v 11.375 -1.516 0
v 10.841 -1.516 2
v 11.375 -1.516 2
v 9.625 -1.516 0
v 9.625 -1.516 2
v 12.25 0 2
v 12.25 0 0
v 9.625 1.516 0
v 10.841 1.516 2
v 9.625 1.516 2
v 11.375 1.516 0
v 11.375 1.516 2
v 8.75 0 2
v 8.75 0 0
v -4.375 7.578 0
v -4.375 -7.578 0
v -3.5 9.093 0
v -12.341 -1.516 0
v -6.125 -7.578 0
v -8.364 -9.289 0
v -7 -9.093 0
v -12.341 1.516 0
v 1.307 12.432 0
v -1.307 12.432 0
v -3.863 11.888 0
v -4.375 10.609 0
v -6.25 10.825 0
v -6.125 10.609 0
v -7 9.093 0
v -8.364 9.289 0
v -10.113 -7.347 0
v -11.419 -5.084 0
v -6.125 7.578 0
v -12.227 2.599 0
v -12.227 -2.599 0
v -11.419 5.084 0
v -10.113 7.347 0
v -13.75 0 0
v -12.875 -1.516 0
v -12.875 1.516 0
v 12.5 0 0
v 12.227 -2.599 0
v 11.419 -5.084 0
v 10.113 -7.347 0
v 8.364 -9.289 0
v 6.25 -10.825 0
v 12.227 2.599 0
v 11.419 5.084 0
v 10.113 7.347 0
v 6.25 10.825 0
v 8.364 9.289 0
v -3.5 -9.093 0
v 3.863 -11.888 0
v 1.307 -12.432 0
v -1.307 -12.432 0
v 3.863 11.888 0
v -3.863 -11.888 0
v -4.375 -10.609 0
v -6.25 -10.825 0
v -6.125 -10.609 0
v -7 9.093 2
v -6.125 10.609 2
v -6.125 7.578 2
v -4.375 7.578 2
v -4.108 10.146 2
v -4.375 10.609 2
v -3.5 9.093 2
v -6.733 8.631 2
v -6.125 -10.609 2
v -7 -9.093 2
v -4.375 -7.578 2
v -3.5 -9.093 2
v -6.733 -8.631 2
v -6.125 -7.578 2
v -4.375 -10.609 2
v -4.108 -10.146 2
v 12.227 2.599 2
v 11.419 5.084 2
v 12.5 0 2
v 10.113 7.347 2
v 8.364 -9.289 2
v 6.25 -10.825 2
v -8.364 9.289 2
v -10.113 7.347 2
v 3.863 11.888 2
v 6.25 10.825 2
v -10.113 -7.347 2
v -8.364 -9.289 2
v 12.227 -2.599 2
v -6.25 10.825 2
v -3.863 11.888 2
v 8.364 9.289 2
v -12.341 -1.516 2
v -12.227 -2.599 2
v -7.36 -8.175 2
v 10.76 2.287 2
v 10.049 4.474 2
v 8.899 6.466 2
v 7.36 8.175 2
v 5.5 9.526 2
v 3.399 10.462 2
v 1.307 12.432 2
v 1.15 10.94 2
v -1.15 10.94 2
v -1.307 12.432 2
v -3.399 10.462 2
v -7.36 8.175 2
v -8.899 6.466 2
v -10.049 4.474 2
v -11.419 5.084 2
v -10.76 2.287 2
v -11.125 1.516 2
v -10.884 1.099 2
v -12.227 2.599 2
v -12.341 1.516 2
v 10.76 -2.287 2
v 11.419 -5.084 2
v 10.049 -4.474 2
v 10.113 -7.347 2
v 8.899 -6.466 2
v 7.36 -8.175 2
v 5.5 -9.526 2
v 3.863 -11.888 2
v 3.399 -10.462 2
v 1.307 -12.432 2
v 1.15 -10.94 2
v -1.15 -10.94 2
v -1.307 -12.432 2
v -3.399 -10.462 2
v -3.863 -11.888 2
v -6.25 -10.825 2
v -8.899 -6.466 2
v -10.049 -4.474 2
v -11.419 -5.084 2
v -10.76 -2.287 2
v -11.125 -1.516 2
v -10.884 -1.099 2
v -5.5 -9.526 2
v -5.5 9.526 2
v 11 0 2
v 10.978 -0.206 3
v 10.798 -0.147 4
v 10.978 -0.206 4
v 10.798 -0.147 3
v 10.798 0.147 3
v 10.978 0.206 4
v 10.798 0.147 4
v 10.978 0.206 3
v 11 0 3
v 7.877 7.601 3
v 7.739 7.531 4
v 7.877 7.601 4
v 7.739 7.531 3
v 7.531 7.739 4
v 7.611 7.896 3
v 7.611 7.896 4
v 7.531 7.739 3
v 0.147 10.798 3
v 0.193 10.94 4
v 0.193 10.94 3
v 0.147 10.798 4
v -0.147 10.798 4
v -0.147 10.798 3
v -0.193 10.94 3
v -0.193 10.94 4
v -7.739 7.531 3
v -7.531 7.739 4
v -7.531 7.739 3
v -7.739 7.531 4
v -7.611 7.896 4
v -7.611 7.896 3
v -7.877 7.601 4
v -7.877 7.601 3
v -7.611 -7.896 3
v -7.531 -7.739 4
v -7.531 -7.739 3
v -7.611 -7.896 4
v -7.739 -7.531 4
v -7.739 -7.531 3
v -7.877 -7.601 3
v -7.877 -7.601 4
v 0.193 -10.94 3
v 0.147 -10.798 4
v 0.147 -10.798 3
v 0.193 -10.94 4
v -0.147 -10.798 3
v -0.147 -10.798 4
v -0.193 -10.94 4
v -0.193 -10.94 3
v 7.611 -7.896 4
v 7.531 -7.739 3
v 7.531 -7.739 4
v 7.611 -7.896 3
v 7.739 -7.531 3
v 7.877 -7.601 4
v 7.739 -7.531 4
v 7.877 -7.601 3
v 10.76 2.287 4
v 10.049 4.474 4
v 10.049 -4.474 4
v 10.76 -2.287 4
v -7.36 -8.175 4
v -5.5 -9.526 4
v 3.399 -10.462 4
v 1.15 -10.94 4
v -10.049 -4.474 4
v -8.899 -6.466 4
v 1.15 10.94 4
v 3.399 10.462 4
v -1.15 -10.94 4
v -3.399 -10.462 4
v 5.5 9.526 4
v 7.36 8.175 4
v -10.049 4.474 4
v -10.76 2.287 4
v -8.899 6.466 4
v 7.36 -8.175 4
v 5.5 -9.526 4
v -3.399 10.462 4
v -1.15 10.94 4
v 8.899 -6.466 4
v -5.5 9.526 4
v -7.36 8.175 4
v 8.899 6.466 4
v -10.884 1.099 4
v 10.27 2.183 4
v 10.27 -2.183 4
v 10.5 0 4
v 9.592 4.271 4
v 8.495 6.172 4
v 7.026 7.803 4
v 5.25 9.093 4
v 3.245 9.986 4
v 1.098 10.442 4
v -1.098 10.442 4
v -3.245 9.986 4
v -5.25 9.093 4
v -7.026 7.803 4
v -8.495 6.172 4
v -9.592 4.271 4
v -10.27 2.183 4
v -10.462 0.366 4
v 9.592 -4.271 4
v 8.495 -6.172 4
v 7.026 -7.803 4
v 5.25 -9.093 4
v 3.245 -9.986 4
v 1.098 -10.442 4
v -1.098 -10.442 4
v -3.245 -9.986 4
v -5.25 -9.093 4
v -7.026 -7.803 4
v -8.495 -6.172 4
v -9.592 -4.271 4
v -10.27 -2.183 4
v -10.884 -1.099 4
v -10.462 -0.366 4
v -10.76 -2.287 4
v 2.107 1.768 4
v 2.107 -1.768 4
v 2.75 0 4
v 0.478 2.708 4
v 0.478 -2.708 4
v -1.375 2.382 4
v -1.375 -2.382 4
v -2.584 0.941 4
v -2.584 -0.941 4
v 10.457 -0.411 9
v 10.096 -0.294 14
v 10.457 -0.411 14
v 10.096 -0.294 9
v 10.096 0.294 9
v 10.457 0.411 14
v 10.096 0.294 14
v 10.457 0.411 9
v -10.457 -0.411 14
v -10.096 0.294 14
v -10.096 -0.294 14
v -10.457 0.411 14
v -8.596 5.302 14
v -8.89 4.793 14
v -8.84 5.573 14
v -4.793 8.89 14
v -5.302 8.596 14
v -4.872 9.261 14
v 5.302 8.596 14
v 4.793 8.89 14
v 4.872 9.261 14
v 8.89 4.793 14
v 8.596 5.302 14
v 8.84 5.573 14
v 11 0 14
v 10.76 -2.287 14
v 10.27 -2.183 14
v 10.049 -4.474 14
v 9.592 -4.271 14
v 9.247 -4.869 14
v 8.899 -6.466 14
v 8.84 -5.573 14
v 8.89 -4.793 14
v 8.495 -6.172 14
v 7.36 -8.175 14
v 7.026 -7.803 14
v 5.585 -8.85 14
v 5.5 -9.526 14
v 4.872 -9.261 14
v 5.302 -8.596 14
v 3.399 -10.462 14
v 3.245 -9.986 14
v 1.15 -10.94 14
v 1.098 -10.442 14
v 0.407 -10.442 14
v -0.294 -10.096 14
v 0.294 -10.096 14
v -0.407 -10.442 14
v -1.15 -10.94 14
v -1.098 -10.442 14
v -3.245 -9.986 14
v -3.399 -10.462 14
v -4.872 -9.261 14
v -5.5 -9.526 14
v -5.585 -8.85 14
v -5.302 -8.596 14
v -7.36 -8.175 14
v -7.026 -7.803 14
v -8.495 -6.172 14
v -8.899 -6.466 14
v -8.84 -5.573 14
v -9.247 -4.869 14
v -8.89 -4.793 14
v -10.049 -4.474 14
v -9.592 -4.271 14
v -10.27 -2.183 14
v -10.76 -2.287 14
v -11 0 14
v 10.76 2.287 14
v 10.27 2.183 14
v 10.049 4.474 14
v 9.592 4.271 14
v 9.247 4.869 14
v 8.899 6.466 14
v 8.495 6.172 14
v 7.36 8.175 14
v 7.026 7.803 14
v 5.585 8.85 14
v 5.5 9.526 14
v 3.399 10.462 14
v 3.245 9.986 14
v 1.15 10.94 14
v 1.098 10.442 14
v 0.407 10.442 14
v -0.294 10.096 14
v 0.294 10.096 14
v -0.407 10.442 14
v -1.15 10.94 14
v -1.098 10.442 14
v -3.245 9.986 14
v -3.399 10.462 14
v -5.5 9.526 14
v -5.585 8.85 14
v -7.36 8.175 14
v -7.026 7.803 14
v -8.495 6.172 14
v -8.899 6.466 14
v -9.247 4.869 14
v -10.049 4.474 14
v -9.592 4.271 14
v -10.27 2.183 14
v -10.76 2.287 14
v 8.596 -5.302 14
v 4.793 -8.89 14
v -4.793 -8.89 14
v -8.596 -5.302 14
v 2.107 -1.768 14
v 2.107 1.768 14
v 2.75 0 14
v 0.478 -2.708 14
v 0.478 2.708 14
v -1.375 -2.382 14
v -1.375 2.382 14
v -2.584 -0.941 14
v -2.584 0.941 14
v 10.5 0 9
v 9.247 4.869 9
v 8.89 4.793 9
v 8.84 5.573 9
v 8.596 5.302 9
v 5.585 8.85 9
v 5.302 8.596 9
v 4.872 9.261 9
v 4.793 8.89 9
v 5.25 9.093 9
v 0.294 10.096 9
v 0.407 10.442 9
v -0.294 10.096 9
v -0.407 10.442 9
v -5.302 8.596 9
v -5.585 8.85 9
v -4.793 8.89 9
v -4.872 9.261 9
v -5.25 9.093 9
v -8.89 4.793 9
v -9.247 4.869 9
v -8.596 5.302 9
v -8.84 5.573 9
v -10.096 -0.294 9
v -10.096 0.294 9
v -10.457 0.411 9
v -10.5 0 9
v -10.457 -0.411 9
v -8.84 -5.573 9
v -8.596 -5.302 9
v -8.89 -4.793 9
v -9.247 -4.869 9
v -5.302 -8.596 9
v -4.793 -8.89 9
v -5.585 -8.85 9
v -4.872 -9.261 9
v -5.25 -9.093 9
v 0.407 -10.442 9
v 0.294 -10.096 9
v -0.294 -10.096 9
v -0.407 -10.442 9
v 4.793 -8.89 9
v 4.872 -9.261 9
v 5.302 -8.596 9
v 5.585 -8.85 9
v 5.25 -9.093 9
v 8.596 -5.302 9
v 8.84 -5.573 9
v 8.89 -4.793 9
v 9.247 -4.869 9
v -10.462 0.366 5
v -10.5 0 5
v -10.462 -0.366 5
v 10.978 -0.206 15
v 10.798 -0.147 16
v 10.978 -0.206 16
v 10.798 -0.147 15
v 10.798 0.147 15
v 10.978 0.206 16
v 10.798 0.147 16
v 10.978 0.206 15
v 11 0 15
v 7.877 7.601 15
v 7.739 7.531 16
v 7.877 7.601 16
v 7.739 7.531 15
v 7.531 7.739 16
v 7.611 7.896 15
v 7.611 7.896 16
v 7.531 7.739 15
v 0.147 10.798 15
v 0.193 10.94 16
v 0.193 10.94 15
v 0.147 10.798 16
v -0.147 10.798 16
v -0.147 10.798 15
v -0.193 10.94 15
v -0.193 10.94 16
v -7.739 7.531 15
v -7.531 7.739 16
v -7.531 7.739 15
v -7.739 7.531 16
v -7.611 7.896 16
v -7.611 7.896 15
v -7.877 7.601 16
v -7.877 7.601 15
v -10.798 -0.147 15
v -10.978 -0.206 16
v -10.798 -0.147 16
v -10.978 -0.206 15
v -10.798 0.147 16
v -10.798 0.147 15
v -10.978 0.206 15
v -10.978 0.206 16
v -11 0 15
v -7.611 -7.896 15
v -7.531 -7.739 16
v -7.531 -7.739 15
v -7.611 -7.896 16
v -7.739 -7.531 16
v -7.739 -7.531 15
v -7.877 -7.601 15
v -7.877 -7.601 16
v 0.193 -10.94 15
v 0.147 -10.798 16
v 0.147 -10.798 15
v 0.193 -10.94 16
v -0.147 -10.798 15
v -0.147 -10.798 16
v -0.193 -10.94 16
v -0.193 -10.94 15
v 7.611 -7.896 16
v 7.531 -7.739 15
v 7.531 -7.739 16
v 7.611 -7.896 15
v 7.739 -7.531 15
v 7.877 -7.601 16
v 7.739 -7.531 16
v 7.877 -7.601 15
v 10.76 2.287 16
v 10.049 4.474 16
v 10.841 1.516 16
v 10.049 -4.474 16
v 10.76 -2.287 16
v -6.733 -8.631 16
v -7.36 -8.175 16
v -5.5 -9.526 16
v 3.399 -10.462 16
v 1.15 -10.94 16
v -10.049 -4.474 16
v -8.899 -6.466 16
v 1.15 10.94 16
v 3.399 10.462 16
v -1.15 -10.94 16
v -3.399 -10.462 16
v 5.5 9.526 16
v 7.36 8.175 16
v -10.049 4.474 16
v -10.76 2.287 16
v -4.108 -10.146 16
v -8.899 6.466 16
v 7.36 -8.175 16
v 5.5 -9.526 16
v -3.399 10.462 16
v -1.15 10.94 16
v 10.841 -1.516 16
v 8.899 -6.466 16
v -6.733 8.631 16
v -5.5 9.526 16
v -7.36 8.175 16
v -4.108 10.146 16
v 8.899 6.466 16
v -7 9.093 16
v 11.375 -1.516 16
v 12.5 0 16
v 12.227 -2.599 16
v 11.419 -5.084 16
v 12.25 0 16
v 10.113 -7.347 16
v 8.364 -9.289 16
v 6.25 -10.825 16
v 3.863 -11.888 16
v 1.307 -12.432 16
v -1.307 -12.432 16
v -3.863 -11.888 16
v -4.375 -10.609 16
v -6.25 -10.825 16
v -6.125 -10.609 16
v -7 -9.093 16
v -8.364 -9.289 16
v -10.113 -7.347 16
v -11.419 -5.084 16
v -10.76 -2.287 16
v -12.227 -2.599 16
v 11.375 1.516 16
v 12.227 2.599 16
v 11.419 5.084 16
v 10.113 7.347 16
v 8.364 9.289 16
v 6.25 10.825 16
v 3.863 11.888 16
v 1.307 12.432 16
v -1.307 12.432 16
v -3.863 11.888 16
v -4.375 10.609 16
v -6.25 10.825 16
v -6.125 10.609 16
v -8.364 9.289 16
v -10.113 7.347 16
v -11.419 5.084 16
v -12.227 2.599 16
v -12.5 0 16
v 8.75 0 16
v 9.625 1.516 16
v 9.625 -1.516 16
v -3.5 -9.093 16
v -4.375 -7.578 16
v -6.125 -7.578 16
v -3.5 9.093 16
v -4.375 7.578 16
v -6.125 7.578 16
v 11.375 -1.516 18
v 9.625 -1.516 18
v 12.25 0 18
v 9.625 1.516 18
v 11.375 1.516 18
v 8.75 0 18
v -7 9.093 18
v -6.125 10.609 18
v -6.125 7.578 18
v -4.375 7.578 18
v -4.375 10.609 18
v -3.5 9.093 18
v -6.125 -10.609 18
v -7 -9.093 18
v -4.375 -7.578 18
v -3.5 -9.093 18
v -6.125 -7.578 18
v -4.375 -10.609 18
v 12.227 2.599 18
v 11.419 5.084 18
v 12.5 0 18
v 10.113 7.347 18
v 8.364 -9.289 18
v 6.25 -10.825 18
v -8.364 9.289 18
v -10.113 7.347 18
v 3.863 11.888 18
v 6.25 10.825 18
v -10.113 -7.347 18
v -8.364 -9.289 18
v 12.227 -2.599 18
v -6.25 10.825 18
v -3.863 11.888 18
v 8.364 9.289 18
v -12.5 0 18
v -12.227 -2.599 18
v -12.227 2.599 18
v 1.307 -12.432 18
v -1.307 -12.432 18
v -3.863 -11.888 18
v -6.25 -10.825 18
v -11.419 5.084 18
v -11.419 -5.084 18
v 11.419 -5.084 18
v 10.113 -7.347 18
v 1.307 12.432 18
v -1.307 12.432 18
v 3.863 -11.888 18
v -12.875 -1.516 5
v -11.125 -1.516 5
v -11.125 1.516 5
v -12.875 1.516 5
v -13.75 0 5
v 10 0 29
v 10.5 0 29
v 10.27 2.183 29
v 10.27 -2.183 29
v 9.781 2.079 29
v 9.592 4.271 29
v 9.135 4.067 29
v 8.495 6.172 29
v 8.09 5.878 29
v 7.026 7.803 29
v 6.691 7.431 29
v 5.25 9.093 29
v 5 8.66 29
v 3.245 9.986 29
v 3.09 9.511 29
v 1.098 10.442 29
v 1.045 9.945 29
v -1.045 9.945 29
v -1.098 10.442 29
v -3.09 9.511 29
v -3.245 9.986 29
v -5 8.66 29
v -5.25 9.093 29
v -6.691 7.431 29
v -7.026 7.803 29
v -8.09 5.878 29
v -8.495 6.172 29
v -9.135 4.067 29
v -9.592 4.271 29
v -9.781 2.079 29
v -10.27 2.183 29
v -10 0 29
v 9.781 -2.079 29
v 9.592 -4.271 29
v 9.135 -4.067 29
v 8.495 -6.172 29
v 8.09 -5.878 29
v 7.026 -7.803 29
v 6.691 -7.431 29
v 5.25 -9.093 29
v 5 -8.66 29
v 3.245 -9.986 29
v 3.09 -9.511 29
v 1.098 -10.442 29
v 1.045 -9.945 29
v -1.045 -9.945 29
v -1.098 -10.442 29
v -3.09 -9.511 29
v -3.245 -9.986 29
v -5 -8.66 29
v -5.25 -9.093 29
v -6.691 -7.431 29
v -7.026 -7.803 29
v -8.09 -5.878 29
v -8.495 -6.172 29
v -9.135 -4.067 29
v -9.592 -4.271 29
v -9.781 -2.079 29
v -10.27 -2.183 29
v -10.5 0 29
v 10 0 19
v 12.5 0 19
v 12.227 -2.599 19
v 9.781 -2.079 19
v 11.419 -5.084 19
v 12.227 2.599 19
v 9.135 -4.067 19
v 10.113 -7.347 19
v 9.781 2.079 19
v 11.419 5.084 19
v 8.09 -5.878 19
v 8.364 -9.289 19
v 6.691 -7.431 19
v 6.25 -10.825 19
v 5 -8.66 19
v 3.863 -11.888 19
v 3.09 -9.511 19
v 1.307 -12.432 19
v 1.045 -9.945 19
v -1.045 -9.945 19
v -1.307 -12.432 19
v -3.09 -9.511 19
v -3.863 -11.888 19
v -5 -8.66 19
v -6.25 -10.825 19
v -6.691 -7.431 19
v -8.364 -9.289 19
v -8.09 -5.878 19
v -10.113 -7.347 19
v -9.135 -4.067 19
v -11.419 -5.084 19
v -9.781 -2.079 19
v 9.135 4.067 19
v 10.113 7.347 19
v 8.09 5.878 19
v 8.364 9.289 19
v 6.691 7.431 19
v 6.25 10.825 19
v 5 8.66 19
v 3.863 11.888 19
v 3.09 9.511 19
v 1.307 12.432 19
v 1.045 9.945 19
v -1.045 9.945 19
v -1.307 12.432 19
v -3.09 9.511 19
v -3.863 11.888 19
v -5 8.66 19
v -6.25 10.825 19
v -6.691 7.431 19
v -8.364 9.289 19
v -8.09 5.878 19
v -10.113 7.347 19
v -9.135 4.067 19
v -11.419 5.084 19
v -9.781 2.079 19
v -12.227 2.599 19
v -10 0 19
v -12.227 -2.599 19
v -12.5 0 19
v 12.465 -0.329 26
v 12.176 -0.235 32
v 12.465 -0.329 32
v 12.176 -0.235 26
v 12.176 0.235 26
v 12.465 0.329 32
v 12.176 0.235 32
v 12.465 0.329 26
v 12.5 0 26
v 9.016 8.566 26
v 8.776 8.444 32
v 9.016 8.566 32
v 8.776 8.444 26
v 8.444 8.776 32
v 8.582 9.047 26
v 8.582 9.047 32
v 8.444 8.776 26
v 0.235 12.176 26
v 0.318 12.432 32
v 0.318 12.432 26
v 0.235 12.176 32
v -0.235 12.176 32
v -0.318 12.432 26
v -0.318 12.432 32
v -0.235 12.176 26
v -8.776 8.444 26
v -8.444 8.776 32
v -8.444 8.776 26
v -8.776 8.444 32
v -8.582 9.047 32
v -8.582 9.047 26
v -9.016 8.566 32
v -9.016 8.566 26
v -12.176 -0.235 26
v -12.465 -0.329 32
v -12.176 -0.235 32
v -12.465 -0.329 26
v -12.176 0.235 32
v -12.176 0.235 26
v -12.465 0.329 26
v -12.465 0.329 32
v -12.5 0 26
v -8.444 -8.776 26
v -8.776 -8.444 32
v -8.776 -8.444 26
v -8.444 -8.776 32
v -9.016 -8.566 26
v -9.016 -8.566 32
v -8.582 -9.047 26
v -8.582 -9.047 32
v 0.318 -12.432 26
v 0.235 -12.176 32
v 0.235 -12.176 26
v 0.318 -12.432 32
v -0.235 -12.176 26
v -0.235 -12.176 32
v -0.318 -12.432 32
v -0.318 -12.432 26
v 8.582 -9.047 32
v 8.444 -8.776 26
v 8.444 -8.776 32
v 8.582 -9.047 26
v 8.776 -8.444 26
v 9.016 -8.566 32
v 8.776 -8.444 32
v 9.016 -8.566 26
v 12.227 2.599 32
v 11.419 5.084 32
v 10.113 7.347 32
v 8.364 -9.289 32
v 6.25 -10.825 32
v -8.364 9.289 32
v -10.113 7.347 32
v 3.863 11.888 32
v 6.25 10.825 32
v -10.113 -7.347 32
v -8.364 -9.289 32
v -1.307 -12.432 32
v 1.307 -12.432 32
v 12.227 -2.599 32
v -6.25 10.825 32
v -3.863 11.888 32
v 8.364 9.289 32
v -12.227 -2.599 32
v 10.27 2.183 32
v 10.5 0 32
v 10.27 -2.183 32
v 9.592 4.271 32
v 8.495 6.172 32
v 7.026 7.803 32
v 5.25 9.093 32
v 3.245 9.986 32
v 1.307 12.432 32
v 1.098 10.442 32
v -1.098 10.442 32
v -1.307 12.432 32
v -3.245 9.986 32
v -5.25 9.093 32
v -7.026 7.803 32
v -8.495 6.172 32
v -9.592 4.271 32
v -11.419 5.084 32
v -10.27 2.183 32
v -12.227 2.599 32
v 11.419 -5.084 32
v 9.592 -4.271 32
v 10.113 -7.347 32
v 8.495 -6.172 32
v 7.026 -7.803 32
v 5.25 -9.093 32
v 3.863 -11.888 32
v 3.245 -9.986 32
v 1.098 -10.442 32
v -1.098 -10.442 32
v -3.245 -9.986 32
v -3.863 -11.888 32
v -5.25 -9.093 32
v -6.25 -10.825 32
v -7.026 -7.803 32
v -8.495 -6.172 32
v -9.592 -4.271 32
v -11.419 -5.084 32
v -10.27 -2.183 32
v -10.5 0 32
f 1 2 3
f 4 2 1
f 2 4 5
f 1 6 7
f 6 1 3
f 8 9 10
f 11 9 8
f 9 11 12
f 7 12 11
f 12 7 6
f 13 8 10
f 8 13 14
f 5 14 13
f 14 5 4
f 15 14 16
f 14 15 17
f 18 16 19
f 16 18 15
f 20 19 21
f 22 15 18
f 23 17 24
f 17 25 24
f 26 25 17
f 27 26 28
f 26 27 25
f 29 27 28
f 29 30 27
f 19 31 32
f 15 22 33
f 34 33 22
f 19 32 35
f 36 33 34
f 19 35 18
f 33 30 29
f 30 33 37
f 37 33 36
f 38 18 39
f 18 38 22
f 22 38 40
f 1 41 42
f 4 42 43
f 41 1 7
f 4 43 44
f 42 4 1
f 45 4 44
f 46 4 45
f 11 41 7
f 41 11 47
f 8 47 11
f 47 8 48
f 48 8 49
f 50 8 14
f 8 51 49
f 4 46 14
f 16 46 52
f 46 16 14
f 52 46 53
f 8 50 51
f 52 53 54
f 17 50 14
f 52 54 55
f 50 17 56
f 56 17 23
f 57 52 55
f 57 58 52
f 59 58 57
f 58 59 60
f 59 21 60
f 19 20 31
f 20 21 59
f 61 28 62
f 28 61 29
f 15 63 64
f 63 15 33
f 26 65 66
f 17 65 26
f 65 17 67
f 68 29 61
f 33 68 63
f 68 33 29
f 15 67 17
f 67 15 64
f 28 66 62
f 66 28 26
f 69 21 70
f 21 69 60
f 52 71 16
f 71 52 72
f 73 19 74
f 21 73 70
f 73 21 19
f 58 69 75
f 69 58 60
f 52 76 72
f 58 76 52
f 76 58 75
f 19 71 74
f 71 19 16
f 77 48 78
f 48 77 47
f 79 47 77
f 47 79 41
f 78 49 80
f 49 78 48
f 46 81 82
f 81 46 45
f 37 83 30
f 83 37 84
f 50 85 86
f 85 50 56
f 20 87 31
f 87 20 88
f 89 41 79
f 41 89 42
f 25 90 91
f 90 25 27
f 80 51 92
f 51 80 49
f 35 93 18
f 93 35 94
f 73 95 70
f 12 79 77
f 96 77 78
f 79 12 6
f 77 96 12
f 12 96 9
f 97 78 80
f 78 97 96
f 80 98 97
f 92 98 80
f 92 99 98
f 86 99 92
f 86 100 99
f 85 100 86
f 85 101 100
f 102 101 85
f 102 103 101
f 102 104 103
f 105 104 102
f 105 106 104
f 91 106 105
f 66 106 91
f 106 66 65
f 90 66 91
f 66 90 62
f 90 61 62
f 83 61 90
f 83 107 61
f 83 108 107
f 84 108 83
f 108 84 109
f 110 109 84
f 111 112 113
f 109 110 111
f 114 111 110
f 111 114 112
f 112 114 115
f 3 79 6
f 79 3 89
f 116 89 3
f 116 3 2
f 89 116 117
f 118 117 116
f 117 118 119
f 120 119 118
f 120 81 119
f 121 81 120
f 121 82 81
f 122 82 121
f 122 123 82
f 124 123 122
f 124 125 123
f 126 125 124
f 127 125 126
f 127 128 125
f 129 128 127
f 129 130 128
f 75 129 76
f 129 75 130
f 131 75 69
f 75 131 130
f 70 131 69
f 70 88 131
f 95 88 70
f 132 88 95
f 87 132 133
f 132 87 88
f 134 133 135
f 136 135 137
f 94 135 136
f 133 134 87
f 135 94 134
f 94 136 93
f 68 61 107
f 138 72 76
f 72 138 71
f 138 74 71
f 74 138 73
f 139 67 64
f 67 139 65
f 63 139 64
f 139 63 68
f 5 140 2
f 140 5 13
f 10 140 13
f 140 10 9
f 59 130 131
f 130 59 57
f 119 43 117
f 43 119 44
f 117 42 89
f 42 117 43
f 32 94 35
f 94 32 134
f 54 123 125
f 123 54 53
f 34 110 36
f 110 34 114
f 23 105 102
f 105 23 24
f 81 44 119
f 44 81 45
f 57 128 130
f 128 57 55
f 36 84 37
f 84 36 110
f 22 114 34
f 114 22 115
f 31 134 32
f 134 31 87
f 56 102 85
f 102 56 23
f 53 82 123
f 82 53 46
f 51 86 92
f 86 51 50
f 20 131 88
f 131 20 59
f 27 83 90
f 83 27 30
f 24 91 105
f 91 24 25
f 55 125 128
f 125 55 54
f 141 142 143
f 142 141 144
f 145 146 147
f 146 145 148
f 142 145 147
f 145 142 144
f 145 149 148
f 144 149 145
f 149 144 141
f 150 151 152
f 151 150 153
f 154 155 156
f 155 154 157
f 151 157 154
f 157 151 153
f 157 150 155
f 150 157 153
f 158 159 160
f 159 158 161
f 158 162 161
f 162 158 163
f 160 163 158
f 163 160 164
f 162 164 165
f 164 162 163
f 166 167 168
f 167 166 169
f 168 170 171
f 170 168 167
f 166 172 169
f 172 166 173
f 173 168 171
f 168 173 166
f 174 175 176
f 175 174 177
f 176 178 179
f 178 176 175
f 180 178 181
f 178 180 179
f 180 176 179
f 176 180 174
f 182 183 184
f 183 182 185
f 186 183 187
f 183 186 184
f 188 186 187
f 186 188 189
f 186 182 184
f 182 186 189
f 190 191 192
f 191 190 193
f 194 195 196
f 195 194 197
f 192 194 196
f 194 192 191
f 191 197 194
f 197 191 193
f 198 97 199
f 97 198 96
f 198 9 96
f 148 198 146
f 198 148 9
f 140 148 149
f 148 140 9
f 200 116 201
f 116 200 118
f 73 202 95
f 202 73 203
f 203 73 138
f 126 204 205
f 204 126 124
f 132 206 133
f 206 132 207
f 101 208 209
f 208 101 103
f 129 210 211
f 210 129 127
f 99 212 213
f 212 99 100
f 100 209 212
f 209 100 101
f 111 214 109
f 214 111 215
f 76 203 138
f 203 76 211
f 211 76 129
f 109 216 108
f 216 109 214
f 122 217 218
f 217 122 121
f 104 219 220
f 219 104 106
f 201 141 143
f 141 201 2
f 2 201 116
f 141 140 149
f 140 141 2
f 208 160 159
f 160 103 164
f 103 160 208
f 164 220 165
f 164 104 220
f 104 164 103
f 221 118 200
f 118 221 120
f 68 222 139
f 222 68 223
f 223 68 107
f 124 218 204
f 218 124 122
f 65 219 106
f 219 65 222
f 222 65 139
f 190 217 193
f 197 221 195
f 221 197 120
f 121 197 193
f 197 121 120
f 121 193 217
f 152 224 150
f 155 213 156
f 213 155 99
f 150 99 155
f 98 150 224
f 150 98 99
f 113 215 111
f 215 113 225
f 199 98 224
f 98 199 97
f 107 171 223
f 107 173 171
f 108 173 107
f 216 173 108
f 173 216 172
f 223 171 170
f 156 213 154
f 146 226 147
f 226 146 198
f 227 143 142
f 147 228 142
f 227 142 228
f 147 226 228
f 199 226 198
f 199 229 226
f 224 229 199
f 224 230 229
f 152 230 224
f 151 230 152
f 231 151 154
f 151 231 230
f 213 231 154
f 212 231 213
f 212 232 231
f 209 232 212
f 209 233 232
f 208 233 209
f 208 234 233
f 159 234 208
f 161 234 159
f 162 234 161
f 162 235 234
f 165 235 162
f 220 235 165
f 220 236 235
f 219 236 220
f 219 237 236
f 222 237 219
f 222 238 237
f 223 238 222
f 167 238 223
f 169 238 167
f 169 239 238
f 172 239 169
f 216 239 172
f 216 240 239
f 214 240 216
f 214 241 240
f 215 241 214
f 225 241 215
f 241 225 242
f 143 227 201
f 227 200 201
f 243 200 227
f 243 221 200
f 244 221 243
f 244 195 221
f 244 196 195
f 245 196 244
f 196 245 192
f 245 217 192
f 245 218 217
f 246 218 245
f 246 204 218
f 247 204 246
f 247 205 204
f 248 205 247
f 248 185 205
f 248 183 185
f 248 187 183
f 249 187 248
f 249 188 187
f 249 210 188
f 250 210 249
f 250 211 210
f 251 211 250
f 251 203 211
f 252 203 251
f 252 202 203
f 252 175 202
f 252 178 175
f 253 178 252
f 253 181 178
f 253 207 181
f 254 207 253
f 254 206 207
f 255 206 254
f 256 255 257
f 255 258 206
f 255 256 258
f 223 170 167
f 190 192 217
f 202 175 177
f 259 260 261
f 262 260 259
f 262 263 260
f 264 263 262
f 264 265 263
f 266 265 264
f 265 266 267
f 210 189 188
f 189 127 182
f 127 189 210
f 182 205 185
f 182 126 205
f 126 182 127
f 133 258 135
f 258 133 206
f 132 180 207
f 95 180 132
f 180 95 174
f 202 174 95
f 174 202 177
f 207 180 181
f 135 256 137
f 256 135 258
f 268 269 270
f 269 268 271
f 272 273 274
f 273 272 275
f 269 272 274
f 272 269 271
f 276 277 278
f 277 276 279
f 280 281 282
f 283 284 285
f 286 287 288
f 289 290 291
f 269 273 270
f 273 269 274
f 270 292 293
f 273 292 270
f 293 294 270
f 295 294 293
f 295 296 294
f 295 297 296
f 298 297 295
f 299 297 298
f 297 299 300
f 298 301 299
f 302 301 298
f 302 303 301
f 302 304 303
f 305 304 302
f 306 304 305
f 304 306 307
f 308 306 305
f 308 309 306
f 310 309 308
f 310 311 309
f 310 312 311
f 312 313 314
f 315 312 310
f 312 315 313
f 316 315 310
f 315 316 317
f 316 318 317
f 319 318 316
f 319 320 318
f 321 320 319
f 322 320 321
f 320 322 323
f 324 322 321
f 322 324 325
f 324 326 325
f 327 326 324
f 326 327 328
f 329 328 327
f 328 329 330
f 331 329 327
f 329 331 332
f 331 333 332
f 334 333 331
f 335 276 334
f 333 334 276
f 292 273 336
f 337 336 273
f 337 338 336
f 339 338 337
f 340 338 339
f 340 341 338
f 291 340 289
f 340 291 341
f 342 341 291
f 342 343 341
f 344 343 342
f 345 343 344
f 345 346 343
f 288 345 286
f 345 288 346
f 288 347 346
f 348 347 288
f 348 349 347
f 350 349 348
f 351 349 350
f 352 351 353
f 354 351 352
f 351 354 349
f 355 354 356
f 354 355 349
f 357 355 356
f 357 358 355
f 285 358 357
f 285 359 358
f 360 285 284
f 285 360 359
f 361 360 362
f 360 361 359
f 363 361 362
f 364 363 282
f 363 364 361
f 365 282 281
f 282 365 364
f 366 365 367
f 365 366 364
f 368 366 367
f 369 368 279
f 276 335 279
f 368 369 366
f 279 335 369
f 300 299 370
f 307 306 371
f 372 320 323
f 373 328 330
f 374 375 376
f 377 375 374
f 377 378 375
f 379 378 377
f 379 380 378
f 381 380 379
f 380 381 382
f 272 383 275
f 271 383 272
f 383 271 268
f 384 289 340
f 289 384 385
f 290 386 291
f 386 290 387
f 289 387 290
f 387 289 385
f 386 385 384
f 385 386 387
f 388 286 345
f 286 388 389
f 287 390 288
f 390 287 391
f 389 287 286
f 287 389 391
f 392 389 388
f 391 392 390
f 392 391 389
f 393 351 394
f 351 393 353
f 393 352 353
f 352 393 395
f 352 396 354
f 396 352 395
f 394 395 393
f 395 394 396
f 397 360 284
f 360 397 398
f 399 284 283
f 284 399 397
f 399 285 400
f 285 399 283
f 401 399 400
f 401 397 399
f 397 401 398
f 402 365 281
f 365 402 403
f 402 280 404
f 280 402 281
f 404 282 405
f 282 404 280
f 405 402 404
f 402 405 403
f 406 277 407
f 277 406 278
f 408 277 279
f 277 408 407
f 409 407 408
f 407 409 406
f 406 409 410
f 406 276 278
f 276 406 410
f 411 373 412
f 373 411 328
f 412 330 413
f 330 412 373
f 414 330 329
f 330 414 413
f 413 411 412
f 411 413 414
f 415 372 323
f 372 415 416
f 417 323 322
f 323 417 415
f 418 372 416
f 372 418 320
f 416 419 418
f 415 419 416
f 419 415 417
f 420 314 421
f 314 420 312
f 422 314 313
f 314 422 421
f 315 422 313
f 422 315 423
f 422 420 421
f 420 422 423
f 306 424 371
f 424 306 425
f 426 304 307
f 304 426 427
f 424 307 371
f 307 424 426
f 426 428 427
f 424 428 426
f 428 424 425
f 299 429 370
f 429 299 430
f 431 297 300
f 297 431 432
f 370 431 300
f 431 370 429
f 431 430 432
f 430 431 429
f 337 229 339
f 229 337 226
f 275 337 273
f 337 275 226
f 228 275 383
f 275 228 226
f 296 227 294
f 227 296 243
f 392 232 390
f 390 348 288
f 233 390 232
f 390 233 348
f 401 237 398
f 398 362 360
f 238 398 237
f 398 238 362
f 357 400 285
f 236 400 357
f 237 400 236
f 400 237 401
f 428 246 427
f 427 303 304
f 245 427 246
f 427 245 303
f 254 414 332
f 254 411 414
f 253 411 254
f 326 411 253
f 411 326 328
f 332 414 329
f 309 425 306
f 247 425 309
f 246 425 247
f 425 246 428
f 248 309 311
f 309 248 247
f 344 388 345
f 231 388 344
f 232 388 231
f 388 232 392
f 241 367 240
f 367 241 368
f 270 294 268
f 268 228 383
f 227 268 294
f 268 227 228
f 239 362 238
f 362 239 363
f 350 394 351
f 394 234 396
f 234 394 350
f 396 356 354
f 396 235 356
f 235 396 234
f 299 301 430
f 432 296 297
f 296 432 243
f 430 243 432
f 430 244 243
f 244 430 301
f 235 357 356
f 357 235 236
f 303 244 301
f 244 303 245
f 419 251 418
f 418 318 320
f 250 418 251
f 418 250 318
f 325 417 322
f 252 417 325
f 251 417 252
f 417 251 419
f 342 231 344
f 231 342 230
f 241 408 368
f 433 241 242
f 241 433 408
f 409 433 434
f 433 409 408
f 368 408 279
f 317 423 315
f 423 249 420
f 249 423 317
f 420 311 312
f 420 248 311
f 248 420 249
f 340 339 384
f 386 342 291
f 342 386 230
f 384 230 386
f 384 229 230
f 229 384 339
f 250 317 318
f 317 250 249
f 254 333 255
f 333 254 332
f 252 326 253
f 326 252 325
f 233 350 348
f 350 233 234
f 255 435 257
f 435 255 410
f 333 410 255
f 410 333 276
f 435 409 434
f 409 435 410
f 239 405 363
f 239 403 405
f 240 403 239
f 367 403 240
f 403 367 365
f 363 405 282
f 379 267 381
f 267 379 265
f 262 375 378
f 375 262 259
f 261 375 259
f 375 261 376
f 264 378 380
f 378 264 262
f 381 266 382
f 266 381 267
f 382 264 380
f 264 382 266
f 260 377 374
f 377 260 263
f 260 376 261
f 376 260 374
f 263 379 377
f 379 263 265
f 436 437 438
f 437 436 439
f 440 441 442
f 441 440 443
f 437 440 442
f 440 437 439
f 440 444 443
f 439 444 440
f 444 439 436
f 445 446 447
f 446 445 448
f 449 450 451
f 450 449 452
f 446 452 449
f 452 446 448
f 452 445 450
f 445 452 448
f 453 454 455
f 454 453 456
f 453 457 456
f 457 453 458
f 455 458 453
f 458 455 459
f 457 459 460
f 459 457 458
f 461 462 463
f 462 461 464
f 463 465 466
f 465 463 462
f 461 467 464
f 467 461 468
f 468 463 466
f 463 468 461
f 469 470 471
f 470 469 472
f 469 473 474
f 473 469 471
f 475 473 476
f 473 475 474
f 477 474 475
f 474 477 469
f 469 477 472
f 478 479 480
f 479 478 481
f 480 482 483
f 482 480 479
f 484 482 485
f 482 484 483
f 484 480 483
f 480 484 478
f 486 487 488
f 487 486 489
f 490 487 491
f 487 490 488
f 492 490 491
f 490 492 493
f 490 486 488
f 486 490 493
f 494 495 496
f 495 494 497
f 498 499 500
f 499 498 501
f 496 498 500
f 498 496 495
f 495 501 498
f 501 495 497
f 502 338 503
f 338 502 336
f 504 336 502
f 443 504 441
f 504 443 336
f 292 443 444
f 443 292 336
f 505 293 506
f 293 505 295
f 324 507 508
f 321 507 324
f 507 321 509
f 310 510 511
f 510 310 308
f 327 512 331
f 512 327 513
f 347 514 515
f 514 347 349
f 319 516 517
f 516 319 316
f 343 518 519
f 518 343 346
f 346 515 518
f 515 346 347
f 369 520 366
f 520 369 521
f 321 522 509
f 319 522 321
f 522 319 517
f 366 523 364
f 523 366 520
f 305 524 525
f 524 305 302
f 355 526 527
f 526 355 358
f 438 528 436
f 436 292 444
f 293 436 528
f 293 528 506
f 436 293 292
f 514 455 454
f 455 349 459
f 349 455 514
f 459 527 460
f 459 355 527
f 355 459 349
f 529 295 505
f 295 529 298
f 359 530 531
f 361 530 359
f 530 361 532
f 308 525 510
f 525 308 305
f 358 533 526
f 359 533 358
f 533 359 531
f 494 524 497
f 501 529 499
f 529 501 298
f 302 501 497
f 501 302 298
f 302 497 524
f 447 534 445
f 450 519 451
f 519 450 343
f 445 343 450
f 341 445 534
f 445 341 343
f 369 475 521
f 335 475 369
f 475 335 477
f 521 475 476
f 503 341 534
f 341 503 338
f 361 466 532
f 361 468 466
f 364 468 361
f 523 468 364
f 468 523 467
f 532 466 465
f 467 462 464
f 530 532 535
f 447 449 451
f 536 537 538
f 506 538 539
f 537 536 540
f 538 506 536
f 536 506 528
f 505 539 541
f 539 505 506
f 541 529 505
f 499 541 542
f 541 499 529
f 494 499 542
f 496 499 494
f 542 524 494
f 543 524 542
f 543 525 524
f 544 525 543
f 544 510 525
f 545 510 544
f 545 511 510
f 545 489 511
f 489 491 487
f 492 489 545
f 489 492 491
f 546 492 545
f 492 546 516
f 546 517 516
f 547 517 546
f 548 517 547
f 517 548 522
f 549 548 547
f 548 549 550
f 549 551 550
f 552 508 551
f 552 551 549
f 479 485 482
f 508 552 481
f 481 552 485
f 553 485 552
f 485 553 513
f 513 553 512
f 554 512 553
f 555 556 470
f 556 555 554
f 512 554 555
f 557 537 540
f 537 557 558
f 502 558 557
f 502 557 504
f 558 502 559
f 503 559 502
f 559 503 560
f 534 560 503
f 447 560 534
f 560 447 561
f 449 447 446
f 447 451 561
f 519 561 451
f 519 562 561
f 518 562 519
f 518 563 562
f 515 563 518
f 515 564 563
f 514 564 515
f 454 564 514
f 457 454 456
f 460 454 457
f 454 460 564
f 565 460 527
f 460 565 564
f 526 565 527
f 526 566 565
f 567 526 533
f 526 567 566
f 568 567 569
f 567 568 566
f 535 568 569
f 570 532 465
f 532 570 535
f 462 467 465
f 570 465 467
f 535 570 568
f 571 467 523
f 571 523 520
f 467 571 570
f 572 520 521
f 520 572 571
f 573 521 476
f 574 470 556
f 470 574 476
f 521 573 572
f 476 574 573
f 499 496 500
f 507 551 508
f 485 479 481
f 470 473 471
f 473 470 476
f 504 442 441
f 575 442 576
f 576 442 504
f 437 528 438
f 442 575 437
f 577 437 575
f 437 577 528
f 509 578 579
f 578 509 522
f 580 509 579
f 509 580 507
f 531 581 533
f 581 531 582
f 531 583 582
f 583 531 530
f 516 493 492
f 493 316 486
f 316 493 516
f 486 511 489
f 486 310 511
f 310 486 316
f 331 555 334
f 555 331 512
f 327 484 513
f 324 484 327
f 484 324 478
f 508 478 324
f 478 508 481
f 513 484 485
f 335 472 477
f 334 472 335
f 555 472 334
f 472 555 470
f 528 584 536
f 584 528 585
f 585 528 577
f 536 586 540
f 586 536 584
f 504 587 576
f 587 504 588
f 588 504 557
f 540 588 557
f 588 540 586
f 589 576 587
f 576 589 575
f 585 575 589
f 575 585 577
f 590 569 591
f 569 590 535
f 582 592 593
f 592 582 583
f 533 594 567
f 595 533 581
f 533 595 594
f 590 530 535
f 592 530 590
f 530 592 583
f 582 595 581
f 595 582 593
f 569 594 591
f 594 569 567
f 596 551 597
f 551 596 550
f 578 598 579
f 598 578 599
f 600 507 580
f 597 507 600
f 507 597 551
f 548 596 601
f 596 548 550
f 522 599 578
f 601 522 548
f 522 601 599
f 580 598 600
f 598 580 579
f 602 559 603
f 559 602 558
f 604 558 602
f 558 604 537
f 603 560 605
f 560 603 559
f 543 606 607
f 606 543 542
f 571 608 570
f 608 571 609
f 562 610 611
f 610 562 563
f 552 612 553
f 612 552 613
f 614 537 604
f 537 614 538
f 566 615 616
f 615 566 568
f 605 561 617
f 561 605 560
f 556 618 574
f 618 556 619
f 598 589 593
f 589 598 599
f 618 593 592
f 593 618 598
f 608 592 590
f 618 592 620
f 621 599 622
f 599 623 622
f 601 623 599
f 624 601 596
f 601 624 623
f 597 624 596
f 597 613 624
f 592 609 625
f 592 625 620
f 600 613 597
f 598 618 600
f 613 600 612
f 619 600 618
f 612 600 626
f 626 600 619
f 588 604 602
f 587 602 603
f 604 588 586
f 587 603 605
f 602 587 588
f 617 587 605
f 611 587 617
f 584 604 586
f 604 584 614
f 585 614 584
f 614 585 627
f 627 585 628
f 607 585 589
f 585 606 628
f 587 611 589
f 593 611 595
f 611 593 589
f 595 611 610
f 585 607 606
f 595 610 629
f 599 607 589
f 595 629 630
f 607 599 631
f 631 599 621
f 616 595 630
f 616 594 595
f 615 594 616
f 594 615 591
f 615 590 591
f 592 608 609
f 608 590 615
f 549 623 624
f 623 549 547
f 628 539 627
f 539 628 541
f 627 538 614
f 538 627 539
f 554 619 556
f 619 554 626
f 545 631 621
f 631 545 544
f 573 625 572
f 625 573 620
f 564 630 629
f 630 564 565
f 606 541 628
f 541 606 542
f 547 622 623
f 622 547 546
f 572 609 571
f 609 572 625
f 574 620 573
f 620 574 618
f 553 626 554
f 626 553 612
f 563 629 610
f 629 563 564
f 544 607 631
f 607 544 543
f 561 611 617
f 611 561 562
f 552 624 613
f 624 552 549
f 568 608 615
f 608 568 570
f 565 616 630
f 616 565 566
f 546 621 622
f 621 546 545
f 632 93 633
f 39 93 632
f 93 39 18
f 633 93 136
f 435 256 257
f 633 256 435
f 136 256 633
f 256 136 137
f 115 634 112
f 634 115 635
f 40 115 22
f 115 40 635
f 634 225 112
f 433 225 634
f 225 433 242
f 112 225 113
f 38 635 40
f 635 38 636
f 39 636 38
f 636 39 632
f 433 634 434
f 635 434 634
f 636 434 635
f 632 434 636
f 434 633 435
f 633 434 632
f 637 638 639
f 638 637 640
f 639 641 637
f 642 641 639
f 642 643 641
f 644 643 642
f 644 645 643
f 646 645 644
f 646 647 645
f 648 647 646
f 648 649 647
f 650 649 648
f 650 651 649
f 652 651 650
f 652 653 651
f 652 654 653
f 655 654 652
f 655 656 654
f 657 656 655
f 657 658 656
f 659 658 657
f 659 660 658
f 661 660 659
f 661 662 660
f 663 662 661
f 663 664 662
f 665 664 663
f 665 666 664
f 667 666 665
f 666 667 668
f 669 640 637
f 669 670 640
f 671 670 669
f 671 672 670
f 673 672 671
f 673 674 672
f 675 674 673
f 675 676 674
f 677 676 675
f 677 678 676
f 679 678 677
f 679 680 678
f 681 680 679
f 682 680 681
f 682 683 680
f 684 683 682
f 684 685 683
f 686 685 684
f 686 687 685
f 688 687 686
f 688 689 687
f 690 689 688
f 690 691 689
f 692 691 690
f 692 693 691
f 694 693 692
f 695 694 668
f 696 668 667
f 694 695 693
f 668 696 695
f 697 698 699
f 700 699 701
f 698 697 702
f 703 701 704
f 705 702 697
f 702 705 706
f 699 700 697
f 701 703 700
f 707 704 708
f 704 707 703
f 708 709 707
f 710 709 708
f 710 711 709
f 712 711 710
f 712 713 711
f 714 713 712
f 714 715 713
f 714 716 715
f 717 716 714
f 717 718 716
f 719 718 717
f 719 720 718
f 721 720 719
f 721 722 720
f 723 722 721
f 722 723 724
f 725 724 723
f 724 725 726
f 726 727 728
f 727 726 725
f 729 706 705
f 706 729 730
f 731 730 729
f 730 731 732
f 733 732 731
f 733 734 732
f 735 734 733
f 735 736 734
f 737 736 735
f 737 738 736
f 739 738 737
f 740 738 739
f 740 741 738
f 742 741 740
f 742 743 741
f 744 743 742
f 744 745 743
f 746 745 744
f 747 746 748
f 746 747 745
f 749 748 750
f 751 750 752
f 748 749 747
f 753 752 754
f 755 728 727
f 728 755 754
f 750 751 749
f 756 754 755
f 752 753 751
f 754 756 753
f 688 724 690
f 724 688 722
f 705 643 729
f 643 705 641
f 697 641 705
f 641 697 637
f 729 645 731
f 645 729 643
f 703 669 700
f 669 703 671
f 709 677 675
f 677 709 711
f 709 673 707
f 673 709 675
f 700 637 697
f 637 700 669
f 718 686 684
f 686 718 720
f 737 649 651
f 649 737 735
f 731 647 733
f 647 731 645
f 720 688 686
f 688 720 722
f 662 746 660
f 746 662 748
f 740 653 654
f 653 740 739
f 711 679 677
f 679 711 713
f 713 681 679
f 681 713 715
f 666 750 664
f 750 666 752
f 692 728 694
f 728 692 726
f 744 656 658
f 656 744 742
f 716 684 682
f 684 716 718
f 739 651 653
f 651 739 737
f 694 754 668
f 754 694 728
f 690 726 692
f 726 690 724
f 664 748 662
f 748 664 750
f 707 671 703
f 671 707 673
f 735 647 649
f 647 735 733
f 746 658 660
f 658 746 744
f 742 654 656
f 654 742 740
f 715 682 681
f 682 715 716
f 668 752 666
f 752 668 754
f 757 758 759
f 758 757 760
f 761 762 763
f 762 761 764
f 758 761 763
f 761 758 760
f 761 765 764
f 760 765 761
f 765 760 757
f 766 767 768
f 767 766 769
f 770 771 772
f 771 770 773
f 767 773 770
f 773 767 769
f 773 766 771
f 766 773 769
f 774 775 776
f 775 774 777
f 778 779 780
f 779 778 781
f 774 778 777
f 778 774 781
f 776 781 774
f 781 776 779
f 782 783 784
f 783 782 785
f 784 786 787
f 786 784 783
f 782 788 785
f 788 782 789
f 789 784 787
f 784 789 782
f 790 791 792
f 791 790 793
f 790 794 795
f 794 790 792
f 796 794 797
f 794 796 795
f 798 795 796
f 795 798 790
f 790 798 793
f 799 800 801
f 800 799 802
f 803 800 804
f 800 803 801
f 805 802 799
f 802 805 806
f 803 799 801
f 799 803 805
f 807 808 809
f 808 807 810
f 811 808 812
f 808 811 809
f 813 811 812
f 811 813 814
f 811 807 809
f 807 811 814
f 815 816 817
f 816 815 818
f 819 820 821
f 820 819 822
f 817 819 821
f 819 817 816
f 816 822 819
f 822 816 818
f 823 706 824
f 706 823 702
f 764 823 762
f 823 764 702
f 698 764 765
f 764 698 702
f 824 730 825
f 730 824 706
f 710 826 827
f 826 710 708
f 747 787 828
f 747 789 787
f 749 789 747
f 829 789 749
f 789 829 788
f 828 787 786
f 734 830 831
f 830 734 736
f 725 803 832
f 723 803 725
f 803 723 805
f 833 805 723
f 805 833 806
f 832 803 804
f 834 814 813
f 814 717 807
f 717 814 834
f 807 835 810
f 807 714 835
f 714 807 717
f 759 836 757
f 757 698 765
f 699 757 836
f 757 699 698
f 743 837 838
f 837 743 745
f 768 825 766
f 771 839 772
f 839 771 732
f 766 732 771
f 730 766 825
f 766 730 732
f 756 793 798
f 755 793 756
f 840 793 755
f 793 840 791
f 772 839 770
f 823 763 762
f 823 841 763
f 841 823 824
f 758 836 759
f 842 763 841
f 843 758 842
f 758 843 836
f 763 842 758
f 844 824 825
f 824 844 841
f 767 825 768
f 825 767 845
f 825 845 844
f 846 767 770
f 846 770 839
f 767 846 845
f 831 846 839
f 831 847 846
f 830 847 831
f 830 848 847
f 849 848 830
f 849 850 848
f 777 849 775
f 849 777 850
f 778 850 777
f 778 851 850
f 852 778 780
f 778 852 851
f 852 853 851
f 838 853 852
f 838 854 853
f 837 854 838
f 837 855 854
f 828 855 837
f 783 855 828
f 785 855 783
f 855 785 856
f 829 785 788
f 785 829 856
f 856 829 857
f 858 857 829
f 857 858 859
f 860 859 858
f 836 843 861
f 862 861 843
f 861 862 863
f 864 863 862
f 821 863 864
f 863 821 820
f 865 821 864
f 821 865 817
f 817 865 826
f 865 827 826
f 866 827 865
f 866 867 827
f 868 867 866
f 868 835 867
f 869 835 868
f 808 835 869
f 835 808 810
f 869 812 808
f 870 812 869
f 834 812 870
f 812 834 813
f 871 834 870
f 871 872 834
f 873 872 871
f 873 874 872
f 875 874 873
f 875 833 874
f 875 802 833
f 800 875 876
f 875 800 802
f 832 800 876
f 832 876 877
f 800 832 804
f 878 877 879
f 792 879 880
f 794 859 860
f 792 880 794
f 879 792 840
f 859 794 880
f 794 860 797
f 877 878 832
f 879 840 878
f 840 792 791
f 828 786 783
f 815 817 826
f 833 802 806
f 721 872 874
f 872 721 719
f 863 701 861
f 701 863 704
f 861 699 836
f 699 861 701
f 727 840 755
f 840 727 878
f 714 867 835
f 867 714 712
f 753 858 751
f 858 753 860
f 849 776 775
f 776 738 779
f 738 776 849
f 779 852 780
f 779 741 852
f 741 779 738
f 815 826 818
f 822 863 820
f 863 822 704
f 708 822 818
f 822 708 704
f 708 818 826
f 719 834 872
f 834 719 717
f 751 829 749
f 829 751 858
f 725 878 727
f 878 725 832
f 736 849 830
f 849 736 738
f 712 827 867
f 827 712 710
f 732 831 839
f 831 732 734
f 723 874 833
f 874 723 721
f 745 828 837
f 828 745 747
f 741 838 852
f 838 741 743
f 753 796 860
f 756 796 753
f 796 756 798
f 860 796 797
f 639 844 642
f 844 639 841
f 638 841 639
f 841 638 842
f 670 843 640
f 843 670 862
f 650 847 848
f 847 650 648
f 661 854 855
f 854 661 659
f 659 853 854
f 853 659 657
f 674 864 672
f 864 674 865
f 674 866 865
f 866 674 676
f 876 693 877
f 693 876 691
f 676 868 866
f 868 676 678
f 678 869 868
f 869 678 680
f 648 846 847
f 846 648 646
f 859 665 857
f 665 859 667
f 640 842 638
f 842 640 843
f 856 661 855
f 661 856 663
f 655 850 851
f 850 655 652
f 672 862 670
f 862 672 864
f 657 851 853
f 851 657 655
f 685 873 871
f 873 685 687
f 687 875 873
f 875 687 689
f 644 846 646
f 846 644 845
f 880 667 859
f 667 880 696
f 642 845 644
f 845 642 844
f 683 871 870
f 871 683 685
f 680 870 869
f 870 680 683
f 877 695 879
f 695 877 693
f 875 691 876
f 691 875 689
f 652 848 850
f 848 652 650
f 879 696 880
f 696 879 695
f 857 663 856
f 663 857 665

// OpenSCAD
// Define dimensions for components
module central_gear() {
    // Adjusting central gear with deeper grooves and refined dimensions
    difference() {
        cylinder(d = 21, h = 10);
        cylinder(d = 5.5, h = 12);  // Central hole resized and realigned
        for (i = [0:360/12:360]) {  // Example groove pattern
            rotate([0,0,i]) translate([10.5,0,5]) cylinder(d = 1, h = 5); 
        }
    }
}

module outer_ring() {
    // Correcting outer ring's grooves and thickness
    difference() {
        cylinder(d = 25, h = 13);  // Reduced thickness
        cylinder(d = 21, h = 13);

        for (i = [0:360/8:360]) {
            rotate([0,0,i]) translate([12.5,0,7]) cylinder(d = 0.8, h = 15);
        }
    }
}

module inner_ring() {
    // Adding internal grooves for a snug fit
    difference() {
        cylinder(d = 22, h = 10);
        cylinder(d = 20, h = 10);  

        for (i = [0:360/6:360]) {
            rotate([0,0,i]) translate([11,0,5]) cylinder(d = 0.6, h = 10);
        }
    }
}

module locking_plate() {
    // Correcting bolt hole spacing and surface flatness
    difference() {
        cylinder(d = 25, h = 2);
        for (i = [0:120:360]) {
            rotate([0, 0, i]) translate([10.5, 0, 0]) cylinder(d = 3.5, h = 3);  // Adjusted bolt holes
        }
    }
}

module groove_plate() {
    // Aligning grooves correctly
    difference() {
        cylinder(d = 22, h = 2);
        for (i = [0:360/8:360]) {
            rotate([0,0,i]) translate([11,0,1]) cylinder(d = 0.5, h = 2);
        }
    }
}

module bolt() {
    // Resizing bolts for thicker and longer profile
    difference() {
        cylinder(d = 3.5, h = 7);
        translate([0,0,5]) rotate([0,0,30]) cylinder(d = 4, h = 3);  // Hexagonal head correction
    }
}

module nut() {
    // Resizing nuts for accurate fit and hexagon shape
    cylinder(d = 5, h = 3);
    translate([0,0,1.5]) rotate([0,0,30]) cylinder(d = 4, h = 2);
}

// Assembly of components based on positional relationship
module assembly() {
    translate([0, 0, 0]) locking_plate();
    translate([0, 0, 2]) groove_plate();
    translate([0, 0, 4]) central_gear();
    translate([0, 0, 14]) groove_plate();
    translate([0, 0, 16]) locking_plate();
    translate([-12, 0, 0]) bolt();  
    translate([0, 0, 19]) inner_ring();
    translate([0, 0, 19]) outer_ring();
}

// Render assembly
assembly();
